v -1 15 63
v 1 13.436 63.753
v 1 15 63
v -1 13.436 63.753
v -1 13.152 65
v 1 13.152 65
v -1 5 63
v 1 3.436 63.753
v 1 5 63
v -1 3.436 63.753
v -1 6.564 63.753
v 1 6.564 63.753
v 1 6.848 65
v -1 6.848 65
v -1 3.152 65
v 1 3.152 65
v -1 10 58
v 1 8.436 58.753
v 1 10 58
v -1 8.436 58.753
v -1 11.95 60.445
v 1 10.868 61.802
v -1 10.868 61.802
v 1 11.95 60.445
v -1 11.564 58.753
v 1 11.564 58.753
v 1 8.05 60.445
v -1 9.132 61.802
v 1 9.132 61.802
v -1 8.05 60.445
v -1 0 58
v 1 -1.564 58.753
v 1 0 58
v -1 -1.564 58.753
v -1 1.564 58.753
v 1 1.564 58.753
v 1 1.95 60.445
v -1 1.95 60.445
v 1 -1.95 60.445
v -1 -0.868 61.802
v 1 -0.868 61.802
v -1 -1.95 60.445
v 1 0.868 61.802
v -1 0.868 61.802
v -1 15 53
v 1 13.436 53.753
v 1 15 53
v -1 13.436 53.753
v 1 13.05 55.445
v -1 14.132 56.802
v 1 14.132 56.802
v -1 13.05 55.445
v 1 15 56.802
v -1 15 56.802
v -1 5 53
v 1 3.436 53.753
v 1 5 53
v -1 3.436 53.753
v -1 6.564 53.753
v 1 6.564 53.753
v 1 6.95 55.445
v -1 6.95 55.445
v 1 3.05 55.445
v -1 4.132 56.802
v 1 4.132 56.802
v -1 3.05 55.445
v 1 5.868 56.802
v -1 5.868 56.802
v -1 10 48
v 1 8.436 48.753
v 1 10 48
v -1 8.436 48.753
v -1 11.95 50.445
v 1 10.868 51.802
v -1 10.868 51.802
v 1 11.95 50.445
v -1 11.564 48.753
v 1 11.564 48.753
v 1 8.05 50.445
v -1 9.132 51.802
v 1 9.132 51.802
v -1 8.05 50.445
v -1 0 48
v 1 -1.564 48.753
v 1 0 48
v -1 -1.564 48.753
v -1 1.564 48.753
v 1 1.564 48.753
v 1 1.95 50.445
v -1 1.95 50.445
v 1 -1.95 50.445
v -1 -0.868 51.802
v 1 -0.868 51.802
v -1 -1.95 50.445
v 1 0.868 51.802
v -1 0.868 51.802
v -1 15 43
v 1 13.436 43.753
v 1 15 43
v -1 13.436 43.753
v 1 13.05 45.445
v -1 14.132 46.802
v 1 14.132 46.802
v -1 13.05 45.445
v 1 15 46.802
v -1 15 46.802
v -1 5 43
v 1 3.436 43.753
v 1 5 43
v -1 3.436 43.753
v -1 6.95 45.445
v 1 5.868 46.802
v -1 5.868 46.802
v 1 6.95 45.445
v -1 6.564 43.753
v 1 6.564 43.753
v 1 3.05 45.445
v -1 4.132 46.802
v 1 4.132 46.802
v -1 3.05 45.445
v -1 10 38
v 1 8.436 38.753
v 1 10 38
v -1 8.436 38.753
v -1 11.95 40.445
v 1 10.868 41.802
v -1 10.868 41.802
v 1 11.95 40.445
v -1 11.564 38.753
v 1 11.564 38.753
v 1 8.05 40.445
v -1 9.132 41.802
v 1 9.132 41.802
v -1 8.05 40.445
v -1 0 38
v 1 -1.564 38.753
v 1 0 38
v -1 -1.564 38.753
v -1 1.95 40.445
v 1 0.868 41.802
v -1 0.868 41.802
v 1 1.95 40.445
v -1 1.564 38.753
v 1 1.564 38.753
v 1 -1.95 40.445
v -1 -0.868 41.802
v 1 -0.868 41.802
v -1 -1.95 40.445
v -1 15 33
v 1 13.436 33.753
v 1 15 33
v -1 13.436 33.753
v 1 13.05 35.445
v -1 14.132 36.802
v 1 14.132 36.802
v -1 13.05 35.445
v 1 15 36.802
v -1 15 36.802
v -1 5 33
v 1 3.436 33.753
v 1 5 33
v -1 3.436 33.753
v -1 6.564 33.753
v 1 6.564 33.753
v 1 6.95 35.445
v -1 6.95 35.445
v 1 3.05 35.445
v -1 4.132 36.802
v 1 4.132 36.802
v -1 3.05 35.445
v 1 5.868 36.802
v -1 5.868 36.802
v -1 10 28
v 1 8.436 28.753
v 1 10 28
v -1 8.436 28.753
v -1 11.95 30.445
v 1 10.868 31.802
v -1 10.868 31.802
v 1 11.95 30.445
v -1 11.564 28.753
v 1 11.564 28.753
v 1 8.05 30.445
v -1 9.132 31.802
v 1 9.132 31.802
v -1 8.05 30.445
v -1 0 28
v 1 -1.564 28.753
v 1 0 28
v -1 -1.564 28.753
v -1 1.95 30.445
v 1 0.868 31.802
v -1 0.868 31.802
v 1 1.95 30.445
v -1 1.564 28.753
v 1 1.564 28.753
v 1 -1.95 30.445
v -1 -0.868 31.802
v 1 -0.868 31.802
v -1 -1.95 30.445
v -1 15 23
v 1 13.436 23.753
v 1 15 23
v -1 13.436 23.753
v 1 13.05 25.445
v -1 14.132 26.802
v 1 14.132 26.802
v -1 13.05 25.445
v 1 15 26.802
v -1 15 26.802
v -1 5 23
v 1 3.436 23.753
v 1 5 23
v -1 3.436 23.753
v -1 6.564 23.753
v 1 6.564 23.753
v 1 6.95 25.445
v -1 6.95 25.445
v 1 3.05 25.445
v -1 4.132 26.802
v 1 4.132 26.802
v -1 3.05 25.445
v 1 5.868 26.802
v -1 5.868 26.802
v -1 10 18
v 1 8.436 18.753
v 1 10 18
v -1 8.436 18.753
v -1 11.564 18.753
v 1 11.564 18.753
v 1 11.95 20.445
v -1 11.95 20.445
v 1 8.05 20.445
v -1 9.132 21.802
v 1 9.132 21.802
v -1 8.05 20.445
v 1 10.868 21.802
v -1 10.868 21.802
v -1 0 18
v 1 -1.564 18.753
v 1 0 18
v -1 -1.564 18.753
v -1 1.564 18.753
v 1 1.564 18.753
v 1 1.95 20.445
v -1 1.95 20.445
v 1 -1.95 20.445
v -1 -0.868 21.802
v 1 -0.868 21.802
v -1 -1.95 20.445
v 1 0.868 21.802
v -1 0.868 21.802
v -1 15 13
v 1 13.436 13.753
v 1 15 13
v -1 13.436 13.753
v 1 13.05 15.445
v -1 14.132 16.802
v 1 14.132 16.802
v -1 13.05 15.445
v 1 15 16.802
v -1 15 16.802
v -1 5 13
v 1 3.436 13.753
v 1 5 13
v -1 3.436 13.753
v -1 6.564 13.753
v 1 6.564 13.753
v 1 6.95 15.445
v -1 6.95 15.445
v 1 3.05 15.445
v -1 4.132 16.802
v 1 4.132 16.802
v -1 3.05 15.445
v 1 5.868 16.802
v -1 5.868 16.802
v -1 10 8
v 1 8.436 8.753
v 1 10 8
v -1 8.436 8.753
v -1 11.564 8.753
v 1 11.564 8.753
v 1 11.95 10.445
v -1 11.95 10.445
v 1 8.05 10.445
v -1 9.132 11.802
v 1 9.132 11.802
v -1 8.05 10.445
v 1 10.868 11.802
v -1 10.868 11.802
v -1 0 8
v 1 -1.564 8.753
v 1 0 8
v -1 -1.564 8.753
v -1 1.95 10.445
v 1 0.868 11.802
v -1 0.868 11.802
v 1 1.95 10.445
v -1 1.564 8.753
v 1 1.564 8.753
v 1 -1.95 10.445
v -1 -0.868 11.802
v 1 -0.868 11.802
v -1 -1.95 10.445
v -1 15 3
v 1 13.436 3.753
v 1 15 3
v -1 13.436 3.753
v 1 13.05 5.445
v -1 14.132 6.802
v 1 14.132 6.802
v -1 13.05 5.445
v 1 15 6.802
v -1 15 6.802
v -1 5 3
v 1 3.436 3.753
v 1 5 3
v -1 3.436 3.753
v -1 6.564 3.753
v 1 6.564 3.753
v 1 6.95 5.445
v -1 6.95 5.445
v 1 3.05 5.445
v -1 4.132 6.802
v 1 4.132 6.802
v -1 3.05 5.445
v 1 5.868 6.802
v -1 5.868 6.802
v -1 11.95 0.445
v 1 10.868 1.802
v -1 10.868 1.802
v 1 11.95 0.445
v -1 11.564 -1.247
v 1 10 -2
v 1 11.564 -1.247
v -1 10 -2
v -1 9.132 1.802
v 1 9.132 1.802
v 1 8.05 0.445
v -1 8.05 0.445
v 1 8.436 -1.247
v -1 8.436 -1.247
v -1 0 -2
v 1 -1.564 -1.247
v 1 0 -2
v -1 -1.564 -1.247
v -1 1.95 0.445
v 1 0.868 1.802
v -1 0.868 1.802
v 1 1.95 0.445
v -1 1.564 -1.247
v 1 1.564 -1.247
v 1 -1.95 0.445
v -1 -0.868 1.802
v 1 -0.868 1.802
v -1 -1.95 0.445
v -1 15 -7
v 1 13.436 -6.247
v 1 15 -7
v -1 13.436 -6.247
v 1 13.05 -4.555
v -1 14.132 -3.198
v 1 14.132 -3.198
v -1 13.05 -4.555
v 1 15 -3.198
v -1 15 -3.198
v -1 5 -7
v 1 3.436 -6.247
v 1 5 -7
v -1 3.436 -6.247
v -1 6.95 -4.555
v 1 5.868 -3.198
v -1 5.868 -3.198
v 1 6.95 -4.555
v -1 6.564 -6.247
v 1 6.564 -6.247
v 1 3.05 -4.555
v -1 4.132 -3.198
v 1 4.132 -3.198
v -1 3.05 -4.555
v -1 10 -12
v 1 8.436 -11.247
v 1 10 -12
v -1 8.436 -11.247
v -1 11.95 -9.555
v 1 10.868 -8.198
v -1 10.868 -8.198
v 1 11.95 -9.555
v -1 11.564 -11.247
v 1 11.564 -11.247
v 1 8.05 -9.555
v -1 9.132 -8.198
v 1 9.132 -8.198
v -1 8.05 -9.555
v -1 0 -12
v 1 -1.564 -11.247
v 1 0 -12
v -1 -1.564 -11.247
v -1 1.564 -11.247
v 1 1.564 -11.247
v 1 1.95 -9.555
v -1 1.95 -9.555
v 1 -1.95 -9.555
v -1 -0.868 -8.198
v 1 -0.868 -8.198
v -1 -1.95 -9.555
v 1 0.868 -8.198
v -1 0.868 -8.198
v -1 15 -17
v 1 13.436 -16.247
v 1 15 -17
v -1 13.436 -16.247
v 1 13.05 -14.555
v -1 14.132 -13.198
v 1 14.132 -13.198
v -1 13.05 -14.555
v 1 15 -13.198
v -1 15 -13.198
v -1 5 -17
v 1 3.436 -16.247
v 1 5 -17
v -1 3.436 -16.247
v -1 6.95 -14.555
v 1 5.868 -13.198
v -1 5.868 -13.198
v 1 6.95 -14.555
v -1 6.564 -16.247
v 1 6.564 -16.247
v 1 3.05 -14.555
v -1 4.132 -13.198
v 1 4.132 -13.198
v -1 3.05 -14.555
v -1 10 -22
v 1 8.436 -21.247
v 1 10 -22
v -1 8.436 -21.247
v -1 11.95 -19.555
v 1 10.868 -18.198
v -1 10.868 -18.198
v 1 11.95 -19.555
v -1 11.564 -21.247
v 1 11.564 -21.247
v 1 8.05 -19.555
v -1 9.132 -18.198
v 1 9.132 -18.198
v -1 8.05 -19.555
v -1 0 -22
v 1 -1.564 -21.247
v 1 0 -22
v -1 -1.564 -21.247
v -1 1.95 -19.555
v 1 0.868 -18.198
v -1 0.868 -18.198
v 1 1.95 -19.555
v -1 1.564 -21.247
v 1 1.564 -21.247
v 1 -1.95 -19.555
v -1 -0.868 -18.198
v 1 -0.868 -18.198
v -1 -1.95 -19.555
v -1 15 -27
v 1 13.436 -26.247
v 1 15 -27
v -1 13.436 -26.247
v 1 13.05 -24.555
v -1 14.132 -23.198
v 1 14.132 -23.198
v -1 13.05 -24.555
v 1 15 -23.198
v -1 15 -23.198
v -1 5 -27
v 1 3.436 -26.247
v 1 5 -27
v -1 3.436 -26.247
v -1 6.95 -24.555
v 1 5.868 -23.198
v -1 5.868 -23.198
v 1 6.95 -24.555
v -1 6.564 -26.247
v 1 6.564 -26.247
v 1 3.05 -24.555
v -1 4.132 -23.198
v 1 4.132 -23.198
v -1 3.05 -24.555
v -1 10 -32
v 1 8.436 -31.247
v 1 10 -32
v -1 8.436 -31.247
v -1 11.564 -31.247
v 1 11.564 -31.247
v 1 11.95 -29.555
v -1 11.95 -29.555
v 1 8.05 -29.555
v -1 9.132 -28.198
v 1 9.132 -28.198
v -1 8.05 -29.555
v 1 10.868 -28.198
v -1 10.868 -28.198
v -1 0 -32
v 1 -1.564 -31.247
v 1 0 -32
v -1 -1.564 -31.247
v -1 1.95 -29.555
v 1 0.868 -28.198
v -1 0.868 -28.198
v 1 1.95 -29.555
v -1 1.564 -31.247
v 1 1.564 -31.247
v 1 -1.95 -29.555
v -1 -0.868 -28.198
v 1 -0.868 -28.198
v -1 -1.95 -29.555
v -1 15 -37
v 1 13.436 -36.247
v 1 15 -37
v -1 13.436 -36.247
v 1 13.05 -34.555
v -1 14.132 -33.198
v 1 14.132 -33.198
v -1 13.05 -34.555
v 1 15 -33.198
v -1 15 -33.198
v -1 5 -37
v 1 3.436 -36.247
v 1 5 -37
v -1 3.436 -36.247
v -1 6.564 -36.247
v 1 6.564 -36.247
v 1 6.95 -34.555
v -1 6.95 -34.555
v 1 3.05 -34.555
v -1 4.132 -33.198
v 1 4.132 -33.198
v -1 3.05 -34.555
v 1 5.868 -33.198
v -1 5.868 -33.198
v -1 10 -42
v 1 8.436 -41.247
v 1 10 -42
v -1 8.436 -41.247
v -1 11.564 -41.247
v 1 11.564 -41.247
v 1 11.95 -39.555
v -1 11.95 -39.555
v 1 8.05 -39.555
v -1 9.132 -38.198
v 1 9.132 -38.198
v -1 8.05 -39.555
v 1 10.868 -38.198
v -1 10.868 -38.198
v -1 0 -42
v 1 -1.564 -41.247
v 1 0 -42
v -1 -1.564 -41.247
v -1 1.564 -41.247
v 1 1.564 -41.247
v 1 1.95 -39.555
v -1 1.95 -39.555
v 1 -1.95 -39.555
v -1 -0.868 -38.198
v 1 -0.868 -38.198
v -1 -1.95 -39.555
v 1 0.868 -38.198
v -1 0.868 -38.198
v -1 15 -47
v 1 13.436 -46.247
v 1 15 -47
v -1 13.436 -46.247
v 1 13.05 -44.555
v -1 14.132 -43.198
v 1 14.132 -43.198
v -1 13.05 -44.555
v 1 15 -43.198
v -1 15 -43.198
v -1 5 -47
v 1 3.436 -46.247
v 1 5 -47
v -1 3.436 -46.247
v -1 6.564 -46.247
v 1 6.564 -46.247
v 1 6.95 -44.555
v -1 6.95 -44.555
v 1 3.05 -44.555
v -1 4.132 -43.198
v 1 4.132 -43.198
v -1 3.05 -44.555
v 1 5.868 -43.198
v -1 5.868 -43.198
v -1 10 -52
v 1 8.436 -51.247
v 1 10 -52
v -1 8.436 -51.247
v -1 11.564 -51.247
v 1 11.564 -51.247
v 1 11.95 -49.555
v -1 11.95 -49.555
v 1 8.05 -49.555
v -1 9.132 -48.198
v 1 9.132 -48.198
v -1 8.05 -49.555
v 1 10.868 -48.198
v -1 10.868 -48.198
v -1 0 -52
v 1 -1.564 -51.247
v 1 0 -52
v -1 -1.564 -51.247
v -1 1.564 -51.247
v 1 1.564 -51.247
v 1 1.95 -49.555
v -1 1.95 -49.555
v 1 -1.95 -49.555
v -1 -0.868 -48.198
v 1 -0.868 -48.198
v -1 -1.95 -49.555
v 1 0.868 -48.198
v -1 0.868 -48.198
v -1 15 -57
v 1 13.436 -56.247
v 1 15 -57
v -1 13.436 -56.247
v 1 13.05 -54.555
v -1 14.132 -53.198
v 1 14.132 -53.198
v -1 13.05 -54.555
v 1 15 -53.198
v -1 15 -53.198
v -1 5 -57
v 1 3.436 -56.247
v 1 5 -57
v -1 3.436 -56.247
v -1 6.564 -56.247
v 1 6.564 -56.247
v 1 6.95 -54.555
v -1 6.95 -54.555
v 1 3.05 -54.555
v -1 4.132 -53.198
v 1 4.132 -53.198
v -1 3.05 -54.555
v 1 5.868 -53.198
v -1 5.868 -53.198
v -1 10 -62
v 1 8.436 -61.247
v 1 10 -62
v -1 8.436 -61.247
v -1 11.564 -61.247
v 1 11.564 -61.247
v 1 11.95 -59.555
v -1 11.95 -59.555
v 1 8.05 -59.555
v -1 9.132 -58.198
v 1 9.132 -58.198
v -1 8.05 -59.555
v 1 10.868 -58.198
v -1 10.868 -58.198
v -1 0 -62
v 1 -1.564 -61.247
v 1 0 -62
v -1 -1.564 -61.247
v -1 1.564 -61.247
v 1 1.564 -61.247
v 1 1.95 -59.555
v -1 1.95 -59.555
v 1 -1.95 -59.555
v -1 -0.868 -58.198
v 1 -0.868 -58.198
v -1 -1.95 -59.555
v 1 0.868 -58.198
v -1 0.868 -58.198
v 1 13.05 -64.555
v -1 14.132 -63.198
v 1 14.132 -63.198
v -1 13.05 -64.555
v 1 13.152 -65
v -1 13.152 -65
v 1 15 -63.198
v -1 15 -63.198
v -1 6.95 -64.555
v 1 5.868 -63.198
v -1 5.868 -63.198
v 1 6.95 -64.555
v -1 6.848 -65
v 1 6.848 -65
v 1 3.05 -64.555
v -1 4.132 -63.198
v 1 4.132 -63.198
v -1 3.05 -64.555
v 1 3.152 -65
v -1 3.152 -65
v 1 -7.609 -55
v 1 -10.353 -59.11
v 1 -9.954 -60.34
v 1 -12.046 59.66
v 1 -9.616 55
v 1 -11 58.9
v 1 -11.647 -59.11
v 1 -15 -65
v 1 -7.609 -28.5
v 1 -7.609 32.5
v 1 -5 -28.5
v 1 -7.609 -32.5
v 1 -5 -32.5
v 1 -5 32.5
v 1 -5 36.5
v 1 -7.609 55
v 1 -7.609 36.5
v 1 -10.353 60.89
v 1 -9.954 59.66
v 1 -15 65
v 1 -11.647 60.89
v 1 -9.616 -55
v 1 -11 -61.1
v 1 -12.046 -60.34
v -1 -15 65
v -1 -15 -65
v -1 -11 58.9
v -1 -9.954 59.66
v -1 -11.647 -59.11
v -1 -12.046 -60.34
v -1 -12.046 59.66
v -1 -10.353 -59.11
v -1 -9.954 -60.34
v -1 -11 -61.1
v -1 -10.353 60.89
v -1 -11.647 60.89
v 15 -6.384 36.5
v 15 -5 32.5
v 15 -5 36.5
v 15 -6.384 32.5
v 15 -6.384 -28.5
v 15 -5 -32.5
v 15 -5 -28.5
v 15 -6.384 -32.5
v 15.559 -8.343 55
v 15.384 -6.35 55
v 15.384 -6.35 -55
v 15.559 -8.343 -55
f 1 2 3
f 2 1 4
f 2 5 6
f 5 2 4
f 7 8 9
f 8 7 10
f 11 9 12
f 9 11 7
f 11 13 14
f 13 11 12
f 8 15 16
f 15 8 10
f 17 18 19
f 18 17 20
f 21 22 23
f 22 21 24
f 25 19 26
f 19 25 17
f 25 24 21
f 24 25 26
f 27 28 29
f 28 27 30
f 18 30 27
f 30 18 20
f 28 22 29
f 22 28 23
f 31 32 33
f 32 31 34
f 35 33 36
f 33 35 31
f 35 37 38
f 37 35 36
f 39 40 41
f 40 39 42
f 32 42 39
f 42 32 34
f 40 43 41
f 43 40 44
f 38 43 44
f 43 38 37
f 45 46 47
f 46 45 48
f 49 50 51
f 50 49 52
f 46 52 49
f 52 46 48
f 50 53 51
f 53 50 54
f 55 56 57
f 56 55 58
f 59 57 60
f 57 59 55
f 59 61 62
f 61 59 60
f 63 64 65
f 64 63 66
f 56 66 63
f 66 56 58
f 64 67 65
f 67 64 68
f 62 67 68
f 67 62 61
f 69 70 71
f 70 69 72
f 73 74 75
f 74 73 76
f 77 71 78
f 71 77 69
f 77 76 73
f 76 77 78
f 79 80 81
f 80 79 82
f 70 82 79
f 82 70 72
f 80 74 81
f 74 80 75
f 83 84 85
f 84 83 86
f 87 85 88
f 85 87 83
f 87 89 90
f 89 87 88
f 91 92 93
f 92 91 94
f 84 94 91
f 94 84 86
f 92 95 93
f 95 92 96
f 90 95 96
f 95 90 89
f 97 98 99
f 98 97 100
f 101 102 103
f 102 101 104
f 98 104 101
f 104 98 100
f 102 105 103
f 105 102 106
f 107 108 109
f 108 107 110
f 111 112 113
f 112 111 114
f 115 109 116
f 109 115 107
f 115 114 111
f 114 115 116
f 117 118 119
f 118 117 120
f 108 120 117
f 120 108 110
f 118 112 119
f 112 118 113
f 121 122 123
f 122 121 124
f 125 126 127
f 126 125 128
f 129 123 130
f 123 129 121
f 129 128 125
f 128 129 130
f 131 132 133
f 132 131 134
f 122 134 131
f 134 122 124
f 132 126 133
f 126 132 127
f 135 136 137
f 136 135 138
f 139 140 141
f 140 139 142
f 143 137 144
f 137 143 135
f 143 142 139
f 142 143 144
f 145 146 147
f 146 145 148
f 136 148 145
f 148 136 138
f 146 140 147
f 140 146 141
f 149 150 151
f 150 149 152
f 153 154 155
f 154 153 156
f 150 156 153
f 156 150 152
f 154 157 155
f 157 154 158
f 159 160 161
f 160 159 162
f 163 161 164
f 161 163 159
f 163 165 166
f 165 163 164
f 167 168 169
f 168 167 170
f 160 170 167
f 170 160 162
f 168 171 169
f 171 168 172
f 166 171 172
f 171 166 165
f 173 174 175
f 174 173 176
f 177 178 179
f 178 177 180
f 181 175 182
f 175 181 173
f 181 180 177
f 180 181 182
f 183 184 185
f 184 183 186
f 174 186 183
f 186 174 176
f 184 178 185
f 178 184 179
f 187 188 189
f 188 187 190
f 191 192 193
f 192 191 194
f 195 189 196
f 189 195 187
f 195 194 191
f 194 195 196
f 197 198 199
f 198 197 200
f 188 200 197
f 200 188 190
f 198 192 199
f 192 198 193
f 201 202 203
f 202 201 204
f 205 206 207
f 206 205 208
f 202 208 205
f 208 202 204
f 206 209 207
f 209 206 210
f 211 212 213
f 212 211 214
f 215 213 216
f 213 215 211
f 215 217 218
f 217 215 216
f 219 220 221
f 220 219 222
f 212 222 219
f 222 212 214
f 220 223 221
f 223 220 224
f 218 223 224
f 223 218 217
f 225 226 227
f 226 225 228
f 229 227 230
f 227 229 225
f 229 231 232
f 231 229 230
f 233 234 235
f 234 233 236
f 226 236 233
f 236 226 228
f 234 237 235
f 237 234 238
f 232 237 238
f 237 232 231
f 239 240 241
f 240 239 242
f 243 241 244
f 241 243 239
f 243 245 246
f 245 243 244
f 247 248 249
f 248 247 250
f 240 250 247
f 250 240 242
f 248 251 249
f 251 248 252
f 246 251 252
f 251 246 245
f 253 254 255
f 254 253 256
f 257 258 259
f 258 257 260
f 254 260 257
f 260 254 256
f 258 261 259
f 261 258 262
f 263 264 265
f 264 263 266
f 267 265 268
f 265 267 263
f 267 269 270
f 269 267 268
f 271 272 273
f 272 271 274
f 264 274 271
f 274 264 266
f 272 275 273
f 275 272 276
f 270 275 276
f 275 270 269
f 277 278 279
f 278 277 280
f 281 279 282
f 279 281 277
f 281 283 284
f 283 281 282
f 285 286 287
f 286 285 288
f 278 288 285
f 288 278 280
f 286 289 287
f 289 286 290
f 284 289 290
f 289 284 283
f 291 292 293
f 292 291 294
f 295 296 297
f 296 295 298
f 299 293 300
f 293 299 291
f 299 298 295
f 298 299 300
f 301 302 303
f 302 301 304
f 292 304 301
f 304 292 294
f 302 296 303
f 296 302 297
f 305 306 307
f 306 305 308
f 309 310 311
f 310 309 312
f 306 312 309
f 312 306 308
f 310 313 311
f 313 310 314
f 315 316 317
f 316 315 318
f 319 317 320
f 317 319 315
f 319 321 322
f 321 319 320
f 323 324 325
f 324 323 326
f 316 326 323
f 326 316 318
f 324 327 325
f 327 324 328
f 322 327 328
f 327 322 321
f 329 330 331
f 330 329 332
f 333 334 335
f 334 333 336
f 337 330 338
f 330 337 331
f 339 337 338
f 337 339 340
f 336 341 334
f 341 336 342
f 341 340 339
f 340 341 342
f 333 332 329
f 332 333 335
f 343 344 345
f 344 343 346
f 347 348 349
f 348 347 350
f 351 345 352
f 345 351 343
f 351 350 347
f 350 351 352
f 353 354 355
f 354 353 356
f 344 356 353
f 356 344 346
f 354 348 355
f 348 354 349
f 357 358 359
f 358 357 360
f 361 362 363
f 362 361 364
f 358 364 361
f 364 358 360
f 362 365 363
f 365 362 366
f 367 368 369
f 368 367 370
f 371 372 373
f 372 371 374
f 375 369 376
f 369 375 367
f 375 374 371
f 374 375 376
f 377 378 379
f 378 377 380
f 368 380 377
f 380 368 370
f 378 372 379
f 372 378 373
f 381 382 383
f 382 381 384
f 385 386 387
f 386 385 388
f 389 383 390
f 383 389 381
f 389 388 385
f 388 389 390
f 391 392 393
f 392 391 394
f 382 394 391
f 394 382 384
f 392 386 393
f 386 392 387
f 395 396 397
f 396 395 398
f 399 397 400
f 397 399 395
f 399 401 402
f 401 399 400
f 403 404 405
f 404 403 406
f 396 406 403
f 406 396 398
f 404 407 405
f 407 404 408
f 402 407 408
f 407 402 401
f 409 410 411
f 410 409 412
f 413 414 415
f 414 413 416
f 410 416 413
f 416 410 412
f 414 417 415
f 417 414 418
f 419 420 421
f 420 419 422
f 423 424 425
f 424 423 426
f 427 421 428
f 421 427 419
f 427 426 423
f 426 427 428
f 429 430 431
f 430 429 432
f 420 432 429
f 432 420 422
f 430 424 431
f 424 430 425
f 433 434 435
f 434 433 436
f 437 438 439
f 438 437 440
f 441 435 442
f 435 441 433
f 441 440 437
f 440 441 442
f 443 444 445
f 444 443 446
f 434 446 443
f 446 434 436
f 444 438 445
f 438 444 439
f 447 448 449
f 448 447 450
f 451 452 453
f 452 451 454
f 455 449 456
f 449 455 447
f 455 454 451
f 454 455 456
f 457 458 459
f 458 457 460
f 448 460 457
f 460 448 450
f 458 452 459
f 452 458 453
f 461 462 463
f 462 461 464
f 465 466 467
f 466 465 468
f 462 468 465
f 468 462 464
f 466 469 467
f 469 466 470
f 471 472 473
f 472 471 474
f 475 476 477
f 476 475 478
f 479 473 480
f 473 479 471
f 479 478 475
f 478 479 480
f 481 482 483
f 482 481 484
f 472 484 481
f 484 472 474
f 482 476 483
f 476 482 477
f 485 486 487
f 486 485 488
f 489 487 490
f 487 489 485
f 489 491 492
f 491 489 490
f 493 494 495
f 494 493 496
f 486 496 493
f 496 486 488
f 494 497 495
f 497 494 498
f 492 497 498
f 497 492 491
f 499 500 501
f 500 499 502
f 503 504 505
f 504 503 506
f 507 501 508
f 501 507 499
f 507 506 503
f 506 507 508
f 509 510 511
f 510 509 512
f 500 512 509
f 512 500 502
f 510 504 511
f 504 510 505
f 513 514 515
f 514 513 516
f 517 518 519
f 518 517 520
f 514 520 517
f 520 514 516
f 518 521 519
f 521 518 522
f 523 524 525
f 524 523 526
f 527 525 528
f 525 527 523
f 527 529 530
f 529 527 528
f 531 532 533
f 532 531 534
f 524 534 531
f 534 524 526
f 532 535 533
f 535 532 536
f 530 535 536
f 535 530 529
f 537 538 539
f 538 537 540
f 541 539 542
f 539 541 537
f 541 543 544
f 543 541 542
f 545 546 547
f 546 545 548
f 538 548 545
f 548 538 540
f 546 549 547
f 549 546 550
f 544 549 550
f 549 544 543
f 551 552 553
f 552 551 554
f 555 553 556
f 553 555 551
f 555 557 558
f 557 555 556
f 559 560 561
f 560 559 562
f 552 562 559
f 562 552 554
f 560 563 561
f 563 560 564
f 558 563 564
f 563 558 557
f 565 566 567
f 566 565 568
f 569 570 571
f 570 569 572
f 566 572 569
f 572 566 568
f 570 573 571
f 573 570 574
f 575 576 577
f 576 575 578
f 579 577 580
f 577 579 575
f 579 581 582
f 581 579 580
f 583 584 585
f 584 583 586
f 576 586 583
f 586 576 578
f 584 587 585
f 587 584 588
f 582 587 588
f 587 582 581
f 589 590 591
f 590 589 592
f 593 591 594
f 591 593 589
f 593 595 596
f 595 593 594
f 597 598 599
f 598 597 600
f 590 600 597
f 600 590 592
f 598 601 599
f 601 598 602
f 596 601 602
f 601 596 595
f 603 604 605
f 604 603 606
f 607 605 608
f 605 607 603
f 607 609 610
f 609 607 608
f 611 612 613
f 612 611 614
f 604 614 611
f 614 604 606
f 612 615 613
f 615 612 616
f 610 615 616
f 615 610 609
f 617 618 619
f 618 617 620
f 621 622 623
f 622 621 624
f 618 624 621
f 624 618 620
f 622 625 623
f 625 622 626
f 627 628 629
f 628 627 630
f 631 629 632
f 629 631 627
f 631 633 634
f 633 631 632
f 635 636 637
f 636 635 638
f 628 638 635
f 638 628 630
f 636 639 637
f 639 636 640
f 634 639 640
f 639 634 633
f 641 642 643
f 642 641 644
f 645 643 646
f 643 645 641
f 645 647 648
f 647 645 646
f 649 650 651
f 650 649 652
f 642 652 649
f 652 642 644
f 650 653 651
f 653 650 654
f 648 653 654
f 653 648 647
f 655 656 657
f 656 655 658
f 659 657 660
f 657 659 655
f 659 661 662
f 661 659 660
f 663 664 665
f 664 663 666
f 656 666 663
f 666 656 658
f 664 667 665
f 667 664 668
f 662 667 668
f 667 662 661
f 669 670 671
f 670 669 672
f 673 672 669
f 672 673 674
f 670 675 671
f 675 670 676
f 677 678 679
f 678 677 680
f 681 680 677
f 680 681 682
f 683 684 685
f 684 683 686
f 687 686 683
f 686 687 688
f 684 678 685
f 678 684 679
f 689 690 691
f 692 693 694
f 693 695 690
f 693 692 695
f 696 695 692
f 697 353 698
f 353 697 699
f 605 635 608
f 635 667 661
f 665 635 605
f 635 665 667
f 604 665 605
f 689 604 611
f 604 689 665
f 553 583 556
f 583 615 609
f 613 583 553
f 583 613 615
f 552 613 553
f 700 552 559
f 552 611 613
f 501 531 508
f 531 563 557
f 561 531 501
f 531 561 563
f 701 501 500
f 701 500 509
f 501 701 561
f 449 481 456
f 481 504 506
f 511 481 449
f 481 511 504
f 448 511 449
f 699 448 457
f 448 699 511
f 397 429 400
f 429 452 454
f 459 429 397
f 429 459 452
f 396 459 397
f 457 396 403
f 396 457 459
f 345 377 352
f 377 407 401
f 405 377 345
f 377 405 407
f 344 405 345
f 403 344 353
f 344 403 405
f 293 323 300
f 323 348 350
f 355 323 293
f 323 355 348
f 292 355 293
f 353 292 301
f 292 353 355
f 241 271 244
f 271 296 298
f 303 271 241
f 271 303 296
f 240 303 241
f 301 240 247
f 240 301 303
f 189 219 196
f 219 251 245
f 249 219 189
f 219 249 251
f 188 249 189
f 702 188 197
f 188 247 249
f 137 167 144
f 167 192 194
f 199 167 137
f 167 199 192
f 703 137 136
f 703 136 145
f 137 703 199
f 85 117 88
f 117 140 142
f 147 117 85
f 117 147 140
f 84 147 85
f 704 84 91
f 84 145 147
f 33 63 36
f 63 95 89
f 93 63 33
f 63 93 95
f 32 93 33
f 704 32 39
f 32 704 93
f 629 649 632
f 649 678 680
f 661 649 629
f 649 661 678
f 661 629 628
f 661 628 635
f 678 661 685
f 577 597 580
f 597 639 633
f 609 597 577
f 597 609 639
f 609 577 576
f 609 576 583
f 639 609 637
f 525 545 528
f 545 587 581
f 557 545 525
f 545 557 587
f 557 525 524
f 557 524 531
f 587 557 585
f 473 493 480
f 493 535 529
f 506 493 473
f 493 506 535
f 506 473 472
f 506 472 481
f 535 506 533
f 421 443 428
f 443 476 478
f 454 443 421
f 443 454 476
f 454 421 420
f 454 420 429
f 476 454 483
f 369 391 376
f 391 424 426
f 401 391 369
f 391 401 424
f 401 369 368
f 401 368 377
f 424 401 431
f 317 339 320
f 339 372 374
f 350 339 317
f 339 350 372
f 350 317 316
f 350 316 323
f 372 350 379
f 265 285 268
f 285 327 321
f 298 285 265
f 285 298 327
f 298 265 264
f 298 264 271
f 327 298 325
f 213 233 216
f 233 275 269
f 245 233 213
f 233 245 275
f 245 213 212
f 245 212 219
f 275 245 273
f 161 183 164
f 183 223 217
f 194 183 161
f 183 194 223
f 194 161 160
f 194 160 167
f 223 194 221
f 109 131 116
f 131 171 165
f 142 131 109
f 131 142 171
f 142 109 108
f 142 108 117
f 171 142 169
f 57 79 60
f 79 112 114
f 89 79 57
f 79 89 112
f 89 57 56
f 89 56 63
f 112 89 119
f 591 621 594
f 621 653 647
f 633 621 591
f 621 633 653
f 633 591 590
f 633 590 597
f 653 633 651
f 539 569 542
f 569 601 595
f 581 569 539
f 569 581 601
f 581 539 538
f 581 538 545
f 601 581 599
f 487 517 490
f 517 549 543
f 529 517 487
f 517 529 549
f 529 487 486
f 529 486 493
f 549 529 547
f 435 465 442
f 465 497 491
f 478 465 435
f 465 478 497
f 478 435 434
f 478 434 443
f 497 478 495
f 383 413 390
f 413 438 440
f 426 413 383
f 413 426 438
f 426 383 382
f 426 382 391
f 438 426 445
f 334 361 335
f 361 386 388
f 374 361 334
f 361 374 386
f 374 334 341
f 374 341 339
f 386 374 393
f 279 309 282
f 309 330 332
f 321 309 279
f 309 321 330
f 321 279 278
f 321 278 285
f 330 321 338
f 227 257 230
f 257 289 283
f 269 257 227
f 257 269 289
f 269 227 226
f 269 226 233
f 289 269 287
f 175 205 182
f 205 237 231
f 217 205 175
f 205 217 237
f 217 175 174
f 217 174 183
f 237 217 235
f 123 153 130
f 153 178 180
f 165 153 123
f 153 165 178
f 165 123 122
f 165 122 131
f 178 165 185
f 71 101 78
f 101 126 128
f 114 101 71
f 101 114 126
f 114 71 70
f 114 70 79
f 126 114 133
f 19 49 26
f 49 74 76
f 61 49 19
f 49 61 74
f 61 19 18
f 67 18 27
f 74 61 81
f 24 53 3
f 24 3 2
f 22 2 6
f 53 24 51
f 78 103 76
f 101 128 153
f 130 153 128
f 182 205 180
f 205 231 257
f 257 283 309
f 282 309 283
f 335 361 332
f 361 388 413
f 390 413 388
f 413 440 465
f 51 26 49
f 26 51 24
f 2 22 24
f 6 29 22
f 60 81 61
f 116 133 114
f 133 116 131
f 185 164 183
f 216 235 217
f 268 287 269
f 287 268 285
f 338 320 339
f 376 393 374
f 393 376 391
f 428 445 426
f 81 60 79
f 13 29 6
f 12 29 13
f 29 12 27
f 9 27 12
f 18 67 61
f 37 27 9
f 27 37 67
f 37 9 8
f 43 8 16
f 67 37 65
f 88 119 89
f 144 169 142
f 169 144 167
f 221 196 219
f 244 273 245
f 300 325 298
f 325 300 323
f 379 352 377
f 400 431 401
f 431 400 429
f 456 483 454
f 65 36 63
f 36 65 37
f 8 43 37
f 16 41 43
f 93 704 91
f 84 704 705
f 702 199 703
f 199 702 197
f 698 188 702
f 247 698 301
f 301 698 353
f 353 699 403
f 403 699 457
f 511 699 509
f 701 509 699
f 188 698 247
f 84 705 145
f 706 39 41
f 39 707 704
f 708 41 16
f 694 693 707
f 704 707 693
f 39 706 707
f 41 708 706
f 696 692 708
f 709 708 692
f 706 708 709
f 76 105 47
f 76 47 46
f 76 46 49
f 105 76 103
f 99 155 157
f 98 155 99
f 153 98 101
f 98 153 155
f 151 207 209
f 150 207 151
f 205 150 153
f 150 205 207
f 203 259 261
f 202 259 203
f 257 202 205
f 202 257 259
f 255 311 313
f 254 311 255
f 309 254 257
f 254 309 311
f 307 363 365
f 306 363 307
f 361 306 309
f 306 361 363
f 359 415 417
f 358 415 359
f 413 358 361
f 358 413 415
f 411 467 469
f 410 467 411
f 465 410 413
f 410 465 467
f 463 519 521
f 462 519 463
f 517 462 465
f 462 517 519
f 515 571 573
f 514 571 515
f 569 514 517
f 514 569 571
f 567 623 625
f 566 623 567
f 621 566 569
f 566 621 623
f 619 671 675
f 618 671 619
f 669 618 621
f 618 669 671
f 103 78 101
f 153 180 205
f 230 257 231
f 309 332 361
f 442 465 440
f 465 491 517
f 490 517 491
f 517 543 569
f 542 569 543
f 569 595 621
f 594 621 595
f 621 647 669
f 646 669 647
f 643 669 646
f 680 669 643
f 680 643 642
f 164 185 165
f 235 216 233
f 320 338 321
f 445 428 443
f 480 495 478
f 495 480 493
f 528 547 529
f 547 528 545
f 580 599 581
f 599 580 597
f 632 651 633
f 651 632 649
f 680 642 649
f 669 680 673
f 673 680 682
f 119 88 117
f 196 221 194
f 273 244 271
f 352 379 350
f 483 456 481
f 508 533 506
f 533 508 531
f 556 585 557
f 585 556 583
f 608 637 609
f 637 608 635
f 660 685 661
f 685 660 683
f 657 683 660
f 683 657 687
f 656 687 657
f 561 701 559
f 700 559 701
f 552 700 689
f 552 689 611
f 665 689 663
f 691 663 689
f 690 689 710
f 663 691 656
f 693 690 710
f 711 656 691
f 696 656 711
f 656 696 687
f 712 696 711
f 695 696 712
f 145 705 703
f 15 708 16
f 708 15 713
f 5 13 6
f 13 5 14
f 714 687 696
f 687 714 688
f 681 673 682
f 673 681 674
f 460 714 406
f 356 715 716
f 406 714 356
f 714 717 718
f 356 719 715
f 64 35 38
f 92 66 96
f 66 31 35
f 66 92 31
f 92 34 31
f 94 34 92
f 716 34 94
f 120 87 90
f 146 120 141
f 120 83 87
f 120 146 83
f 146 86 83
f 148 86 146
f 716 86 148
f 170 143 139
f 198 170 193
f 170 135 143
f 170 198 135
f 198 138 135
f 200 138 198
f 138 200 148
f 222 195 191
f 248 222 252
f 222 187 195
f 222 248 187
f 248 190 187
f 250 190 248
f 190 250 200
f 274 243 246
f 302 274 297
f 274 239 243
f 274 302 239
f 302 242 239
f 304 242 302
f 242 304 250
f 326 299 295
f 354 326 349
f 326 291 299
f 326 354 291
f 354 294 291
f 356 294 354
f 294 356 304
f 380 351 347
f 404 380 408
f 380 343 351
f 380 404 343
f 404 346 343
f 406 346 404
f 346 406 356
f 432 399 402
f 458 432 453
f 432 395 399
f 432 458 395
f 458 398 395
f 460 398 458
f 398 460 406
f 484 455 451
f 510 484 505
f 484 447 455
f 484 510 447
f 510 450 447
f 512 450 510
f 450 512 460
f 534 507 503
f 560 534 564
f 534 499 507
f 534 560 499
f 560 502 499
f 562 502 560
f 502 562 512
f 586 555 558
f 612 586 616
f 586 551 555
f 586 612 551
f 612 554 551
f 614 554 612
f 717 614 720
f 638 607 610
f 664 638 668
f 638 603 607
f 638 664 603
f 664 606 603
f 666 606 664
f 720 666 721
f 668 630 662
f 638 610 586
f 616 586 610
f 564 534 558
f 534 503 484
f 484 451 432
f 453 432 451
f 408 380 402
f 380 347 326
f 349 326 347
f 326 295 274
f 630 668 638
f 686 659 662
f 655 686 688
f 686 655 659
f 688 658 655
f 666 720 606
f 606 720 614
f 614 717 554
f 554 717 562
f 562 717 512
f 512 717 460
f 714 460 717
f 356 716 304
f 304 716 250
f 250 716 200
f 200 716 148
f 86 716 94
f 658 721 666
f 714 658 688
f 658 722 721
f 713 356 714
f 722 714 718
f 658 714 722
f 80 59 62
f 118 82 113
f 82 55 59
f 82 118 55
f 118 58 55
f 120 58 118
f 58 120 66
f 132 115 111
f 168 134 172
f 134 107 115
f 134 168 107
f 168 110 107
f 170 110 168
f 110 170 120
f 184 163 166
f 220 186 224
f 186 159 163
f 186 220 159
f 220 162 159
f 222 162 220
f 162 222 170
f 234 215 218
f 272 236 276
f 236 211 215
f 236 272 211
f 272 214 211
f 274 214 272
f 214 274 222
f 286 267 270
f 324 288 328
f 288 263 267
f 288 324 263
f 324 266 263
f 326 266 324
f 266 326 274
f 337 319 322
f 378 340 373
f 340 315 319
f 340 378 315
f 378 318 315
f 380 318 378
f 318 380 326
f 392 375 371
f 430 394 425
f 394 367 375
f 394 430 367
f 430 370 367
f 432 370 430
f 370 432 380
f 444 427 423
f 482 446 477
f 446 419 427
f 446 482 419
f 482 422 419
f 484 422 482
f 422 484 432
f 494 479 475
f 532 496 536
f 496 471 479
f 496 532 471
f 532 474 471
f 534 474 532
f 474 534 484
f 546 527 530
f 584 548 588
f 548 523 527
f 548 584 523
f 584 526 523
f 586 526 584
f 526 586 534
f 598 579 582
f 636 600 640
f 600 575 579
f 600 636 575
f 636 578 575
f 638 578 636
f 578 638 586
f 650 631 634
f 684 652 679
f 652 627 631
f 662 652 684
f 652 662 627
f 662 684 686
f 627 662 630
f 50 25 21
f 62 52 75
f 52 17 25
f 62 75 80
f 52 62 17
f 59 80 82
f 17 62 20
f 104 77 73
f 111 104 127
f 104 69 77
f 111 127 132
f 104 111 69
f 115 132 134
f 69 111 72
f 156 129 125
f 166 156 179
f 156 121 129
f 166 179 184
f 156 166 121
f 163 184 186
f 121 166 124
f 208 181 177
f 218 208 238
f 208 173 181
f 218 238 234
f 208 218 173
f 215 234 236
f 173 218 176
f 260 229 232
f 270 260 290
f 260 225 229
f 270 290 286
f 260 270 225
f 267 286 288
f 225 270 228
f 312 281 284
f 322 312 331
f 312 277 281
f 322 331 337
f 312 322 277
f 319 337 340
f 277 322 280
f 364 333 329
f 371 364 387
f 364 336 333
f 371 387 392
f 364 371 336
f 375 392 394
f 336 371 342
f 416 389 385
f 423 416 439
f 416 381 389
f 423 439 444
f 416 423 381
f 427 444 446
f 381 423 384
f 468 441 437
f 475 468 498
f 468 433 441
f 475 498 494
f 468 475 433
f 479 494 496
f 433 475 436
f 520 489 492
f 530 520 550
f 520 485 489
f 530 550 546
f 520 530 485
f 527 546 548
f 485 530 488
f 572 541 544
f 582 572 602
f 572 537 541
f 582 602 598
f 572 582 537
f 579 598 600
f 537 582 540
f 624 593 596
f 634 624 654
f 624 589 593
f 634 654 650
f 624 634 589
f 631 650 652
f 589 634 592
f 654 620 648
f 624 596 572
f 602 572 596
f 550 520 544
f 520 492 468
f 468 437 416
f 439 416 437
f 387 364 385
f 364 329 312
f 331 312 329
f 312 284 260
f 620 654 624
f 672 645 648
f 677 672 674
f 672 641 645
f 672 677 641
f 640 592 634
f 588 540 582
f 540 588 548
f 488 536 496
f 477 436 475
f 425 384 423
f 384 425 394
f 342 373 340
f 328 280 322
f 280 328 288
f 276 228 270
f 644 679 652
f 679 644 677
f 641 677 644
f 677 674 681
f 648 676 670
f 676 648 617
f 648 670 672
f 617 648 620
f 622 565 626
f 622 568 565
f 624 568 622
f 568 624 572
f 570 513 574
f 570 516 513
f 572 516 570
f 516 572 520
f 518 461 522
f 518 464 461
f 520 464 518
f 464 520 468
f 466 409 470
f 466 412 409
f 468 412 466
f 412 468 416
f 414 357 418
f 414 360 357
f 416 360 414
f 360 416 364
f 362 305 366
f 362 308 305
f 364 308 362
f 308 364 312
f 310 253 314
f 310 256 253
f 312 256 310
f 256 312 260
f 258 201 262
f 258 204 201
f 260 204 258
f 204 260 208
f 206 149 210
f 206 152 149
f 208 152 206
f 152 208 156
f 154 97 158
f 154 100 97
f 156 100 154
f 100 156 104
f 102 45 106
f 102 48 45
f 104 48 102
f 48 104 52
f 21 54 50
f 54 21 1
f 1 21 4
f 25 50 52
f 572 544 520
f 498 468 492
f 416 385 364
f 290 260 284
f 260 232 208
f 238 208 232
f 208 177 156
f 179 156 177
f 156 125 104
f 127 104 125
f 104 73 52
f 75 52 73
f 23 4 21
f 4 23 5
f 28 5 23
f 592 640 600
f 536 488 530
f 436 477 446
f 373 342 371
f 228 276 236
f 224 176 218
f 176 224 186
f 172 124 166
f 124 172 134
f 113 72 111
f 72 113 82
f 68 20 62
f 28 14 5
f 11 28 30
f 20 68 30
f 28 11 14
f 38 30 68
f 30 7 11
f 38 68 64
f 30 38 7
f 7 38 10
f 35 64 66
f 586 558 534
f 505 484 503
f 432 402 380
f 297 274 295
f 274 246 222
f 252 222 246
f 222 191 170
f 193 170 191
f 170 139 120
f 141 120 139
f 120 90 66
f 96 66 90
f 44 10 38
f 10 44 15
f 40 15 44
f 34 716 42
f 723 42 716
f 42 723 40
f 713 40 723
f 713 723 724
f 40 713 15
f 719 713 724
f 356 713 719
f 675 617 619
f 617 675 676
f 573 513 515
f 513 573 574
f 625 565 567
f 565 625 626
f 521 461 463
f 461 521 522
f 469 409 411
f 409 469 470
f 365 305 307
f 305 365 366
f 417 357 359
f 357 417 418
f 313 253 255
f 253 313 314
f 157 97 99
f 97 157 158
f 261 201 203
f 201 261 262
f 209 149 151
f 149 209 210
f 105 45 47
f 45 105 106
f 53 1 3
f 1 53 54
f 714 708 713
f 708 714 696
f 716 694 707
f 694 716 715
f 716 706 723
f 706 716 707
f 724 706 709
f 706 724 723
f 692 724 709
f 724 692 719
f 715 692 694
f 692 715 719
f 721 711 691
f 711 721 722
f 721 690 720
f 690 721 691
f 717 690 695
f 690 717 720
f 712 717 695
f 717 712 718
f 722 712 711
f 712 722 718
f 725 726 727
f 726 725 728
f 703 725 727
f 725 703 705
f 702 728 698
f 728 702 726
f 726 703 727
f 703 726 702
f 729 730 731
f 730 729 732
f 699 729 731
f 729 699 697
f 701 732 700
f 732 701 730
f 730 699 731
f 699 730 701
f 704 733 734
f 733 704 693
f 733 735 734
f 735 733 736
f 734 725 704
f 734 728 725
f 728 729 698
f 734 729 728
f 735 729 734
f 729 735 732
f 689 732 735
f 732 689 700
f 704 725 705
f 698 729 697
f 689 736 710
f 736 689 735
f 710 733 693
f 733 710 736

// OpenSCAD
length = 130;
width = 2;
overhang = 15;
height = 30;

difference() {
  cube([width, height, length], center = true);
  translate([0, (-height/2+4), (length/2) - 5]) rotate([0,90,0]) cylinder(d=2.2, h=6, center = true);
  translate([0, (-height/2+4), (-length/2) + 5]) rotate([0,90,0]) cylinder(d=2.2, h=6, center = true);

  for (i = [0:(length / 10)]) {
     translate([0, (height/2), ((length/2)-(i*10))]) rotate([0,90,0]) cylinder(d=4, h=6, center = true);
     translate([0, (height/2)-10, ((length/2)-(i*10))]) rotate([0,90,0]) cylinder(d=4, h=6, center = true);
     translate([0, (height/2)-5, (((length/2)-5)-(i*10))]) rotate([0,90,0]) cylinder(d=4, h=6, center = true);
     translate([0, (height/2)-15, (((length/2)-5)-(i*10))]) rotate([0,90,0]) cylinder(d=4, h=6, center = true);
  }

} 


translate([0, -8, length / 4]) rotate([0,0,0]) cube([overhang, width+1, 4]);
translate([0, -8, -length / 4]) rotate([0,0,0]) cube([overhang, width+1, 4]);
translate([8, -8, 0]) rotate([0,0,5]) cube([overhang, width, length - 20], center = true);
